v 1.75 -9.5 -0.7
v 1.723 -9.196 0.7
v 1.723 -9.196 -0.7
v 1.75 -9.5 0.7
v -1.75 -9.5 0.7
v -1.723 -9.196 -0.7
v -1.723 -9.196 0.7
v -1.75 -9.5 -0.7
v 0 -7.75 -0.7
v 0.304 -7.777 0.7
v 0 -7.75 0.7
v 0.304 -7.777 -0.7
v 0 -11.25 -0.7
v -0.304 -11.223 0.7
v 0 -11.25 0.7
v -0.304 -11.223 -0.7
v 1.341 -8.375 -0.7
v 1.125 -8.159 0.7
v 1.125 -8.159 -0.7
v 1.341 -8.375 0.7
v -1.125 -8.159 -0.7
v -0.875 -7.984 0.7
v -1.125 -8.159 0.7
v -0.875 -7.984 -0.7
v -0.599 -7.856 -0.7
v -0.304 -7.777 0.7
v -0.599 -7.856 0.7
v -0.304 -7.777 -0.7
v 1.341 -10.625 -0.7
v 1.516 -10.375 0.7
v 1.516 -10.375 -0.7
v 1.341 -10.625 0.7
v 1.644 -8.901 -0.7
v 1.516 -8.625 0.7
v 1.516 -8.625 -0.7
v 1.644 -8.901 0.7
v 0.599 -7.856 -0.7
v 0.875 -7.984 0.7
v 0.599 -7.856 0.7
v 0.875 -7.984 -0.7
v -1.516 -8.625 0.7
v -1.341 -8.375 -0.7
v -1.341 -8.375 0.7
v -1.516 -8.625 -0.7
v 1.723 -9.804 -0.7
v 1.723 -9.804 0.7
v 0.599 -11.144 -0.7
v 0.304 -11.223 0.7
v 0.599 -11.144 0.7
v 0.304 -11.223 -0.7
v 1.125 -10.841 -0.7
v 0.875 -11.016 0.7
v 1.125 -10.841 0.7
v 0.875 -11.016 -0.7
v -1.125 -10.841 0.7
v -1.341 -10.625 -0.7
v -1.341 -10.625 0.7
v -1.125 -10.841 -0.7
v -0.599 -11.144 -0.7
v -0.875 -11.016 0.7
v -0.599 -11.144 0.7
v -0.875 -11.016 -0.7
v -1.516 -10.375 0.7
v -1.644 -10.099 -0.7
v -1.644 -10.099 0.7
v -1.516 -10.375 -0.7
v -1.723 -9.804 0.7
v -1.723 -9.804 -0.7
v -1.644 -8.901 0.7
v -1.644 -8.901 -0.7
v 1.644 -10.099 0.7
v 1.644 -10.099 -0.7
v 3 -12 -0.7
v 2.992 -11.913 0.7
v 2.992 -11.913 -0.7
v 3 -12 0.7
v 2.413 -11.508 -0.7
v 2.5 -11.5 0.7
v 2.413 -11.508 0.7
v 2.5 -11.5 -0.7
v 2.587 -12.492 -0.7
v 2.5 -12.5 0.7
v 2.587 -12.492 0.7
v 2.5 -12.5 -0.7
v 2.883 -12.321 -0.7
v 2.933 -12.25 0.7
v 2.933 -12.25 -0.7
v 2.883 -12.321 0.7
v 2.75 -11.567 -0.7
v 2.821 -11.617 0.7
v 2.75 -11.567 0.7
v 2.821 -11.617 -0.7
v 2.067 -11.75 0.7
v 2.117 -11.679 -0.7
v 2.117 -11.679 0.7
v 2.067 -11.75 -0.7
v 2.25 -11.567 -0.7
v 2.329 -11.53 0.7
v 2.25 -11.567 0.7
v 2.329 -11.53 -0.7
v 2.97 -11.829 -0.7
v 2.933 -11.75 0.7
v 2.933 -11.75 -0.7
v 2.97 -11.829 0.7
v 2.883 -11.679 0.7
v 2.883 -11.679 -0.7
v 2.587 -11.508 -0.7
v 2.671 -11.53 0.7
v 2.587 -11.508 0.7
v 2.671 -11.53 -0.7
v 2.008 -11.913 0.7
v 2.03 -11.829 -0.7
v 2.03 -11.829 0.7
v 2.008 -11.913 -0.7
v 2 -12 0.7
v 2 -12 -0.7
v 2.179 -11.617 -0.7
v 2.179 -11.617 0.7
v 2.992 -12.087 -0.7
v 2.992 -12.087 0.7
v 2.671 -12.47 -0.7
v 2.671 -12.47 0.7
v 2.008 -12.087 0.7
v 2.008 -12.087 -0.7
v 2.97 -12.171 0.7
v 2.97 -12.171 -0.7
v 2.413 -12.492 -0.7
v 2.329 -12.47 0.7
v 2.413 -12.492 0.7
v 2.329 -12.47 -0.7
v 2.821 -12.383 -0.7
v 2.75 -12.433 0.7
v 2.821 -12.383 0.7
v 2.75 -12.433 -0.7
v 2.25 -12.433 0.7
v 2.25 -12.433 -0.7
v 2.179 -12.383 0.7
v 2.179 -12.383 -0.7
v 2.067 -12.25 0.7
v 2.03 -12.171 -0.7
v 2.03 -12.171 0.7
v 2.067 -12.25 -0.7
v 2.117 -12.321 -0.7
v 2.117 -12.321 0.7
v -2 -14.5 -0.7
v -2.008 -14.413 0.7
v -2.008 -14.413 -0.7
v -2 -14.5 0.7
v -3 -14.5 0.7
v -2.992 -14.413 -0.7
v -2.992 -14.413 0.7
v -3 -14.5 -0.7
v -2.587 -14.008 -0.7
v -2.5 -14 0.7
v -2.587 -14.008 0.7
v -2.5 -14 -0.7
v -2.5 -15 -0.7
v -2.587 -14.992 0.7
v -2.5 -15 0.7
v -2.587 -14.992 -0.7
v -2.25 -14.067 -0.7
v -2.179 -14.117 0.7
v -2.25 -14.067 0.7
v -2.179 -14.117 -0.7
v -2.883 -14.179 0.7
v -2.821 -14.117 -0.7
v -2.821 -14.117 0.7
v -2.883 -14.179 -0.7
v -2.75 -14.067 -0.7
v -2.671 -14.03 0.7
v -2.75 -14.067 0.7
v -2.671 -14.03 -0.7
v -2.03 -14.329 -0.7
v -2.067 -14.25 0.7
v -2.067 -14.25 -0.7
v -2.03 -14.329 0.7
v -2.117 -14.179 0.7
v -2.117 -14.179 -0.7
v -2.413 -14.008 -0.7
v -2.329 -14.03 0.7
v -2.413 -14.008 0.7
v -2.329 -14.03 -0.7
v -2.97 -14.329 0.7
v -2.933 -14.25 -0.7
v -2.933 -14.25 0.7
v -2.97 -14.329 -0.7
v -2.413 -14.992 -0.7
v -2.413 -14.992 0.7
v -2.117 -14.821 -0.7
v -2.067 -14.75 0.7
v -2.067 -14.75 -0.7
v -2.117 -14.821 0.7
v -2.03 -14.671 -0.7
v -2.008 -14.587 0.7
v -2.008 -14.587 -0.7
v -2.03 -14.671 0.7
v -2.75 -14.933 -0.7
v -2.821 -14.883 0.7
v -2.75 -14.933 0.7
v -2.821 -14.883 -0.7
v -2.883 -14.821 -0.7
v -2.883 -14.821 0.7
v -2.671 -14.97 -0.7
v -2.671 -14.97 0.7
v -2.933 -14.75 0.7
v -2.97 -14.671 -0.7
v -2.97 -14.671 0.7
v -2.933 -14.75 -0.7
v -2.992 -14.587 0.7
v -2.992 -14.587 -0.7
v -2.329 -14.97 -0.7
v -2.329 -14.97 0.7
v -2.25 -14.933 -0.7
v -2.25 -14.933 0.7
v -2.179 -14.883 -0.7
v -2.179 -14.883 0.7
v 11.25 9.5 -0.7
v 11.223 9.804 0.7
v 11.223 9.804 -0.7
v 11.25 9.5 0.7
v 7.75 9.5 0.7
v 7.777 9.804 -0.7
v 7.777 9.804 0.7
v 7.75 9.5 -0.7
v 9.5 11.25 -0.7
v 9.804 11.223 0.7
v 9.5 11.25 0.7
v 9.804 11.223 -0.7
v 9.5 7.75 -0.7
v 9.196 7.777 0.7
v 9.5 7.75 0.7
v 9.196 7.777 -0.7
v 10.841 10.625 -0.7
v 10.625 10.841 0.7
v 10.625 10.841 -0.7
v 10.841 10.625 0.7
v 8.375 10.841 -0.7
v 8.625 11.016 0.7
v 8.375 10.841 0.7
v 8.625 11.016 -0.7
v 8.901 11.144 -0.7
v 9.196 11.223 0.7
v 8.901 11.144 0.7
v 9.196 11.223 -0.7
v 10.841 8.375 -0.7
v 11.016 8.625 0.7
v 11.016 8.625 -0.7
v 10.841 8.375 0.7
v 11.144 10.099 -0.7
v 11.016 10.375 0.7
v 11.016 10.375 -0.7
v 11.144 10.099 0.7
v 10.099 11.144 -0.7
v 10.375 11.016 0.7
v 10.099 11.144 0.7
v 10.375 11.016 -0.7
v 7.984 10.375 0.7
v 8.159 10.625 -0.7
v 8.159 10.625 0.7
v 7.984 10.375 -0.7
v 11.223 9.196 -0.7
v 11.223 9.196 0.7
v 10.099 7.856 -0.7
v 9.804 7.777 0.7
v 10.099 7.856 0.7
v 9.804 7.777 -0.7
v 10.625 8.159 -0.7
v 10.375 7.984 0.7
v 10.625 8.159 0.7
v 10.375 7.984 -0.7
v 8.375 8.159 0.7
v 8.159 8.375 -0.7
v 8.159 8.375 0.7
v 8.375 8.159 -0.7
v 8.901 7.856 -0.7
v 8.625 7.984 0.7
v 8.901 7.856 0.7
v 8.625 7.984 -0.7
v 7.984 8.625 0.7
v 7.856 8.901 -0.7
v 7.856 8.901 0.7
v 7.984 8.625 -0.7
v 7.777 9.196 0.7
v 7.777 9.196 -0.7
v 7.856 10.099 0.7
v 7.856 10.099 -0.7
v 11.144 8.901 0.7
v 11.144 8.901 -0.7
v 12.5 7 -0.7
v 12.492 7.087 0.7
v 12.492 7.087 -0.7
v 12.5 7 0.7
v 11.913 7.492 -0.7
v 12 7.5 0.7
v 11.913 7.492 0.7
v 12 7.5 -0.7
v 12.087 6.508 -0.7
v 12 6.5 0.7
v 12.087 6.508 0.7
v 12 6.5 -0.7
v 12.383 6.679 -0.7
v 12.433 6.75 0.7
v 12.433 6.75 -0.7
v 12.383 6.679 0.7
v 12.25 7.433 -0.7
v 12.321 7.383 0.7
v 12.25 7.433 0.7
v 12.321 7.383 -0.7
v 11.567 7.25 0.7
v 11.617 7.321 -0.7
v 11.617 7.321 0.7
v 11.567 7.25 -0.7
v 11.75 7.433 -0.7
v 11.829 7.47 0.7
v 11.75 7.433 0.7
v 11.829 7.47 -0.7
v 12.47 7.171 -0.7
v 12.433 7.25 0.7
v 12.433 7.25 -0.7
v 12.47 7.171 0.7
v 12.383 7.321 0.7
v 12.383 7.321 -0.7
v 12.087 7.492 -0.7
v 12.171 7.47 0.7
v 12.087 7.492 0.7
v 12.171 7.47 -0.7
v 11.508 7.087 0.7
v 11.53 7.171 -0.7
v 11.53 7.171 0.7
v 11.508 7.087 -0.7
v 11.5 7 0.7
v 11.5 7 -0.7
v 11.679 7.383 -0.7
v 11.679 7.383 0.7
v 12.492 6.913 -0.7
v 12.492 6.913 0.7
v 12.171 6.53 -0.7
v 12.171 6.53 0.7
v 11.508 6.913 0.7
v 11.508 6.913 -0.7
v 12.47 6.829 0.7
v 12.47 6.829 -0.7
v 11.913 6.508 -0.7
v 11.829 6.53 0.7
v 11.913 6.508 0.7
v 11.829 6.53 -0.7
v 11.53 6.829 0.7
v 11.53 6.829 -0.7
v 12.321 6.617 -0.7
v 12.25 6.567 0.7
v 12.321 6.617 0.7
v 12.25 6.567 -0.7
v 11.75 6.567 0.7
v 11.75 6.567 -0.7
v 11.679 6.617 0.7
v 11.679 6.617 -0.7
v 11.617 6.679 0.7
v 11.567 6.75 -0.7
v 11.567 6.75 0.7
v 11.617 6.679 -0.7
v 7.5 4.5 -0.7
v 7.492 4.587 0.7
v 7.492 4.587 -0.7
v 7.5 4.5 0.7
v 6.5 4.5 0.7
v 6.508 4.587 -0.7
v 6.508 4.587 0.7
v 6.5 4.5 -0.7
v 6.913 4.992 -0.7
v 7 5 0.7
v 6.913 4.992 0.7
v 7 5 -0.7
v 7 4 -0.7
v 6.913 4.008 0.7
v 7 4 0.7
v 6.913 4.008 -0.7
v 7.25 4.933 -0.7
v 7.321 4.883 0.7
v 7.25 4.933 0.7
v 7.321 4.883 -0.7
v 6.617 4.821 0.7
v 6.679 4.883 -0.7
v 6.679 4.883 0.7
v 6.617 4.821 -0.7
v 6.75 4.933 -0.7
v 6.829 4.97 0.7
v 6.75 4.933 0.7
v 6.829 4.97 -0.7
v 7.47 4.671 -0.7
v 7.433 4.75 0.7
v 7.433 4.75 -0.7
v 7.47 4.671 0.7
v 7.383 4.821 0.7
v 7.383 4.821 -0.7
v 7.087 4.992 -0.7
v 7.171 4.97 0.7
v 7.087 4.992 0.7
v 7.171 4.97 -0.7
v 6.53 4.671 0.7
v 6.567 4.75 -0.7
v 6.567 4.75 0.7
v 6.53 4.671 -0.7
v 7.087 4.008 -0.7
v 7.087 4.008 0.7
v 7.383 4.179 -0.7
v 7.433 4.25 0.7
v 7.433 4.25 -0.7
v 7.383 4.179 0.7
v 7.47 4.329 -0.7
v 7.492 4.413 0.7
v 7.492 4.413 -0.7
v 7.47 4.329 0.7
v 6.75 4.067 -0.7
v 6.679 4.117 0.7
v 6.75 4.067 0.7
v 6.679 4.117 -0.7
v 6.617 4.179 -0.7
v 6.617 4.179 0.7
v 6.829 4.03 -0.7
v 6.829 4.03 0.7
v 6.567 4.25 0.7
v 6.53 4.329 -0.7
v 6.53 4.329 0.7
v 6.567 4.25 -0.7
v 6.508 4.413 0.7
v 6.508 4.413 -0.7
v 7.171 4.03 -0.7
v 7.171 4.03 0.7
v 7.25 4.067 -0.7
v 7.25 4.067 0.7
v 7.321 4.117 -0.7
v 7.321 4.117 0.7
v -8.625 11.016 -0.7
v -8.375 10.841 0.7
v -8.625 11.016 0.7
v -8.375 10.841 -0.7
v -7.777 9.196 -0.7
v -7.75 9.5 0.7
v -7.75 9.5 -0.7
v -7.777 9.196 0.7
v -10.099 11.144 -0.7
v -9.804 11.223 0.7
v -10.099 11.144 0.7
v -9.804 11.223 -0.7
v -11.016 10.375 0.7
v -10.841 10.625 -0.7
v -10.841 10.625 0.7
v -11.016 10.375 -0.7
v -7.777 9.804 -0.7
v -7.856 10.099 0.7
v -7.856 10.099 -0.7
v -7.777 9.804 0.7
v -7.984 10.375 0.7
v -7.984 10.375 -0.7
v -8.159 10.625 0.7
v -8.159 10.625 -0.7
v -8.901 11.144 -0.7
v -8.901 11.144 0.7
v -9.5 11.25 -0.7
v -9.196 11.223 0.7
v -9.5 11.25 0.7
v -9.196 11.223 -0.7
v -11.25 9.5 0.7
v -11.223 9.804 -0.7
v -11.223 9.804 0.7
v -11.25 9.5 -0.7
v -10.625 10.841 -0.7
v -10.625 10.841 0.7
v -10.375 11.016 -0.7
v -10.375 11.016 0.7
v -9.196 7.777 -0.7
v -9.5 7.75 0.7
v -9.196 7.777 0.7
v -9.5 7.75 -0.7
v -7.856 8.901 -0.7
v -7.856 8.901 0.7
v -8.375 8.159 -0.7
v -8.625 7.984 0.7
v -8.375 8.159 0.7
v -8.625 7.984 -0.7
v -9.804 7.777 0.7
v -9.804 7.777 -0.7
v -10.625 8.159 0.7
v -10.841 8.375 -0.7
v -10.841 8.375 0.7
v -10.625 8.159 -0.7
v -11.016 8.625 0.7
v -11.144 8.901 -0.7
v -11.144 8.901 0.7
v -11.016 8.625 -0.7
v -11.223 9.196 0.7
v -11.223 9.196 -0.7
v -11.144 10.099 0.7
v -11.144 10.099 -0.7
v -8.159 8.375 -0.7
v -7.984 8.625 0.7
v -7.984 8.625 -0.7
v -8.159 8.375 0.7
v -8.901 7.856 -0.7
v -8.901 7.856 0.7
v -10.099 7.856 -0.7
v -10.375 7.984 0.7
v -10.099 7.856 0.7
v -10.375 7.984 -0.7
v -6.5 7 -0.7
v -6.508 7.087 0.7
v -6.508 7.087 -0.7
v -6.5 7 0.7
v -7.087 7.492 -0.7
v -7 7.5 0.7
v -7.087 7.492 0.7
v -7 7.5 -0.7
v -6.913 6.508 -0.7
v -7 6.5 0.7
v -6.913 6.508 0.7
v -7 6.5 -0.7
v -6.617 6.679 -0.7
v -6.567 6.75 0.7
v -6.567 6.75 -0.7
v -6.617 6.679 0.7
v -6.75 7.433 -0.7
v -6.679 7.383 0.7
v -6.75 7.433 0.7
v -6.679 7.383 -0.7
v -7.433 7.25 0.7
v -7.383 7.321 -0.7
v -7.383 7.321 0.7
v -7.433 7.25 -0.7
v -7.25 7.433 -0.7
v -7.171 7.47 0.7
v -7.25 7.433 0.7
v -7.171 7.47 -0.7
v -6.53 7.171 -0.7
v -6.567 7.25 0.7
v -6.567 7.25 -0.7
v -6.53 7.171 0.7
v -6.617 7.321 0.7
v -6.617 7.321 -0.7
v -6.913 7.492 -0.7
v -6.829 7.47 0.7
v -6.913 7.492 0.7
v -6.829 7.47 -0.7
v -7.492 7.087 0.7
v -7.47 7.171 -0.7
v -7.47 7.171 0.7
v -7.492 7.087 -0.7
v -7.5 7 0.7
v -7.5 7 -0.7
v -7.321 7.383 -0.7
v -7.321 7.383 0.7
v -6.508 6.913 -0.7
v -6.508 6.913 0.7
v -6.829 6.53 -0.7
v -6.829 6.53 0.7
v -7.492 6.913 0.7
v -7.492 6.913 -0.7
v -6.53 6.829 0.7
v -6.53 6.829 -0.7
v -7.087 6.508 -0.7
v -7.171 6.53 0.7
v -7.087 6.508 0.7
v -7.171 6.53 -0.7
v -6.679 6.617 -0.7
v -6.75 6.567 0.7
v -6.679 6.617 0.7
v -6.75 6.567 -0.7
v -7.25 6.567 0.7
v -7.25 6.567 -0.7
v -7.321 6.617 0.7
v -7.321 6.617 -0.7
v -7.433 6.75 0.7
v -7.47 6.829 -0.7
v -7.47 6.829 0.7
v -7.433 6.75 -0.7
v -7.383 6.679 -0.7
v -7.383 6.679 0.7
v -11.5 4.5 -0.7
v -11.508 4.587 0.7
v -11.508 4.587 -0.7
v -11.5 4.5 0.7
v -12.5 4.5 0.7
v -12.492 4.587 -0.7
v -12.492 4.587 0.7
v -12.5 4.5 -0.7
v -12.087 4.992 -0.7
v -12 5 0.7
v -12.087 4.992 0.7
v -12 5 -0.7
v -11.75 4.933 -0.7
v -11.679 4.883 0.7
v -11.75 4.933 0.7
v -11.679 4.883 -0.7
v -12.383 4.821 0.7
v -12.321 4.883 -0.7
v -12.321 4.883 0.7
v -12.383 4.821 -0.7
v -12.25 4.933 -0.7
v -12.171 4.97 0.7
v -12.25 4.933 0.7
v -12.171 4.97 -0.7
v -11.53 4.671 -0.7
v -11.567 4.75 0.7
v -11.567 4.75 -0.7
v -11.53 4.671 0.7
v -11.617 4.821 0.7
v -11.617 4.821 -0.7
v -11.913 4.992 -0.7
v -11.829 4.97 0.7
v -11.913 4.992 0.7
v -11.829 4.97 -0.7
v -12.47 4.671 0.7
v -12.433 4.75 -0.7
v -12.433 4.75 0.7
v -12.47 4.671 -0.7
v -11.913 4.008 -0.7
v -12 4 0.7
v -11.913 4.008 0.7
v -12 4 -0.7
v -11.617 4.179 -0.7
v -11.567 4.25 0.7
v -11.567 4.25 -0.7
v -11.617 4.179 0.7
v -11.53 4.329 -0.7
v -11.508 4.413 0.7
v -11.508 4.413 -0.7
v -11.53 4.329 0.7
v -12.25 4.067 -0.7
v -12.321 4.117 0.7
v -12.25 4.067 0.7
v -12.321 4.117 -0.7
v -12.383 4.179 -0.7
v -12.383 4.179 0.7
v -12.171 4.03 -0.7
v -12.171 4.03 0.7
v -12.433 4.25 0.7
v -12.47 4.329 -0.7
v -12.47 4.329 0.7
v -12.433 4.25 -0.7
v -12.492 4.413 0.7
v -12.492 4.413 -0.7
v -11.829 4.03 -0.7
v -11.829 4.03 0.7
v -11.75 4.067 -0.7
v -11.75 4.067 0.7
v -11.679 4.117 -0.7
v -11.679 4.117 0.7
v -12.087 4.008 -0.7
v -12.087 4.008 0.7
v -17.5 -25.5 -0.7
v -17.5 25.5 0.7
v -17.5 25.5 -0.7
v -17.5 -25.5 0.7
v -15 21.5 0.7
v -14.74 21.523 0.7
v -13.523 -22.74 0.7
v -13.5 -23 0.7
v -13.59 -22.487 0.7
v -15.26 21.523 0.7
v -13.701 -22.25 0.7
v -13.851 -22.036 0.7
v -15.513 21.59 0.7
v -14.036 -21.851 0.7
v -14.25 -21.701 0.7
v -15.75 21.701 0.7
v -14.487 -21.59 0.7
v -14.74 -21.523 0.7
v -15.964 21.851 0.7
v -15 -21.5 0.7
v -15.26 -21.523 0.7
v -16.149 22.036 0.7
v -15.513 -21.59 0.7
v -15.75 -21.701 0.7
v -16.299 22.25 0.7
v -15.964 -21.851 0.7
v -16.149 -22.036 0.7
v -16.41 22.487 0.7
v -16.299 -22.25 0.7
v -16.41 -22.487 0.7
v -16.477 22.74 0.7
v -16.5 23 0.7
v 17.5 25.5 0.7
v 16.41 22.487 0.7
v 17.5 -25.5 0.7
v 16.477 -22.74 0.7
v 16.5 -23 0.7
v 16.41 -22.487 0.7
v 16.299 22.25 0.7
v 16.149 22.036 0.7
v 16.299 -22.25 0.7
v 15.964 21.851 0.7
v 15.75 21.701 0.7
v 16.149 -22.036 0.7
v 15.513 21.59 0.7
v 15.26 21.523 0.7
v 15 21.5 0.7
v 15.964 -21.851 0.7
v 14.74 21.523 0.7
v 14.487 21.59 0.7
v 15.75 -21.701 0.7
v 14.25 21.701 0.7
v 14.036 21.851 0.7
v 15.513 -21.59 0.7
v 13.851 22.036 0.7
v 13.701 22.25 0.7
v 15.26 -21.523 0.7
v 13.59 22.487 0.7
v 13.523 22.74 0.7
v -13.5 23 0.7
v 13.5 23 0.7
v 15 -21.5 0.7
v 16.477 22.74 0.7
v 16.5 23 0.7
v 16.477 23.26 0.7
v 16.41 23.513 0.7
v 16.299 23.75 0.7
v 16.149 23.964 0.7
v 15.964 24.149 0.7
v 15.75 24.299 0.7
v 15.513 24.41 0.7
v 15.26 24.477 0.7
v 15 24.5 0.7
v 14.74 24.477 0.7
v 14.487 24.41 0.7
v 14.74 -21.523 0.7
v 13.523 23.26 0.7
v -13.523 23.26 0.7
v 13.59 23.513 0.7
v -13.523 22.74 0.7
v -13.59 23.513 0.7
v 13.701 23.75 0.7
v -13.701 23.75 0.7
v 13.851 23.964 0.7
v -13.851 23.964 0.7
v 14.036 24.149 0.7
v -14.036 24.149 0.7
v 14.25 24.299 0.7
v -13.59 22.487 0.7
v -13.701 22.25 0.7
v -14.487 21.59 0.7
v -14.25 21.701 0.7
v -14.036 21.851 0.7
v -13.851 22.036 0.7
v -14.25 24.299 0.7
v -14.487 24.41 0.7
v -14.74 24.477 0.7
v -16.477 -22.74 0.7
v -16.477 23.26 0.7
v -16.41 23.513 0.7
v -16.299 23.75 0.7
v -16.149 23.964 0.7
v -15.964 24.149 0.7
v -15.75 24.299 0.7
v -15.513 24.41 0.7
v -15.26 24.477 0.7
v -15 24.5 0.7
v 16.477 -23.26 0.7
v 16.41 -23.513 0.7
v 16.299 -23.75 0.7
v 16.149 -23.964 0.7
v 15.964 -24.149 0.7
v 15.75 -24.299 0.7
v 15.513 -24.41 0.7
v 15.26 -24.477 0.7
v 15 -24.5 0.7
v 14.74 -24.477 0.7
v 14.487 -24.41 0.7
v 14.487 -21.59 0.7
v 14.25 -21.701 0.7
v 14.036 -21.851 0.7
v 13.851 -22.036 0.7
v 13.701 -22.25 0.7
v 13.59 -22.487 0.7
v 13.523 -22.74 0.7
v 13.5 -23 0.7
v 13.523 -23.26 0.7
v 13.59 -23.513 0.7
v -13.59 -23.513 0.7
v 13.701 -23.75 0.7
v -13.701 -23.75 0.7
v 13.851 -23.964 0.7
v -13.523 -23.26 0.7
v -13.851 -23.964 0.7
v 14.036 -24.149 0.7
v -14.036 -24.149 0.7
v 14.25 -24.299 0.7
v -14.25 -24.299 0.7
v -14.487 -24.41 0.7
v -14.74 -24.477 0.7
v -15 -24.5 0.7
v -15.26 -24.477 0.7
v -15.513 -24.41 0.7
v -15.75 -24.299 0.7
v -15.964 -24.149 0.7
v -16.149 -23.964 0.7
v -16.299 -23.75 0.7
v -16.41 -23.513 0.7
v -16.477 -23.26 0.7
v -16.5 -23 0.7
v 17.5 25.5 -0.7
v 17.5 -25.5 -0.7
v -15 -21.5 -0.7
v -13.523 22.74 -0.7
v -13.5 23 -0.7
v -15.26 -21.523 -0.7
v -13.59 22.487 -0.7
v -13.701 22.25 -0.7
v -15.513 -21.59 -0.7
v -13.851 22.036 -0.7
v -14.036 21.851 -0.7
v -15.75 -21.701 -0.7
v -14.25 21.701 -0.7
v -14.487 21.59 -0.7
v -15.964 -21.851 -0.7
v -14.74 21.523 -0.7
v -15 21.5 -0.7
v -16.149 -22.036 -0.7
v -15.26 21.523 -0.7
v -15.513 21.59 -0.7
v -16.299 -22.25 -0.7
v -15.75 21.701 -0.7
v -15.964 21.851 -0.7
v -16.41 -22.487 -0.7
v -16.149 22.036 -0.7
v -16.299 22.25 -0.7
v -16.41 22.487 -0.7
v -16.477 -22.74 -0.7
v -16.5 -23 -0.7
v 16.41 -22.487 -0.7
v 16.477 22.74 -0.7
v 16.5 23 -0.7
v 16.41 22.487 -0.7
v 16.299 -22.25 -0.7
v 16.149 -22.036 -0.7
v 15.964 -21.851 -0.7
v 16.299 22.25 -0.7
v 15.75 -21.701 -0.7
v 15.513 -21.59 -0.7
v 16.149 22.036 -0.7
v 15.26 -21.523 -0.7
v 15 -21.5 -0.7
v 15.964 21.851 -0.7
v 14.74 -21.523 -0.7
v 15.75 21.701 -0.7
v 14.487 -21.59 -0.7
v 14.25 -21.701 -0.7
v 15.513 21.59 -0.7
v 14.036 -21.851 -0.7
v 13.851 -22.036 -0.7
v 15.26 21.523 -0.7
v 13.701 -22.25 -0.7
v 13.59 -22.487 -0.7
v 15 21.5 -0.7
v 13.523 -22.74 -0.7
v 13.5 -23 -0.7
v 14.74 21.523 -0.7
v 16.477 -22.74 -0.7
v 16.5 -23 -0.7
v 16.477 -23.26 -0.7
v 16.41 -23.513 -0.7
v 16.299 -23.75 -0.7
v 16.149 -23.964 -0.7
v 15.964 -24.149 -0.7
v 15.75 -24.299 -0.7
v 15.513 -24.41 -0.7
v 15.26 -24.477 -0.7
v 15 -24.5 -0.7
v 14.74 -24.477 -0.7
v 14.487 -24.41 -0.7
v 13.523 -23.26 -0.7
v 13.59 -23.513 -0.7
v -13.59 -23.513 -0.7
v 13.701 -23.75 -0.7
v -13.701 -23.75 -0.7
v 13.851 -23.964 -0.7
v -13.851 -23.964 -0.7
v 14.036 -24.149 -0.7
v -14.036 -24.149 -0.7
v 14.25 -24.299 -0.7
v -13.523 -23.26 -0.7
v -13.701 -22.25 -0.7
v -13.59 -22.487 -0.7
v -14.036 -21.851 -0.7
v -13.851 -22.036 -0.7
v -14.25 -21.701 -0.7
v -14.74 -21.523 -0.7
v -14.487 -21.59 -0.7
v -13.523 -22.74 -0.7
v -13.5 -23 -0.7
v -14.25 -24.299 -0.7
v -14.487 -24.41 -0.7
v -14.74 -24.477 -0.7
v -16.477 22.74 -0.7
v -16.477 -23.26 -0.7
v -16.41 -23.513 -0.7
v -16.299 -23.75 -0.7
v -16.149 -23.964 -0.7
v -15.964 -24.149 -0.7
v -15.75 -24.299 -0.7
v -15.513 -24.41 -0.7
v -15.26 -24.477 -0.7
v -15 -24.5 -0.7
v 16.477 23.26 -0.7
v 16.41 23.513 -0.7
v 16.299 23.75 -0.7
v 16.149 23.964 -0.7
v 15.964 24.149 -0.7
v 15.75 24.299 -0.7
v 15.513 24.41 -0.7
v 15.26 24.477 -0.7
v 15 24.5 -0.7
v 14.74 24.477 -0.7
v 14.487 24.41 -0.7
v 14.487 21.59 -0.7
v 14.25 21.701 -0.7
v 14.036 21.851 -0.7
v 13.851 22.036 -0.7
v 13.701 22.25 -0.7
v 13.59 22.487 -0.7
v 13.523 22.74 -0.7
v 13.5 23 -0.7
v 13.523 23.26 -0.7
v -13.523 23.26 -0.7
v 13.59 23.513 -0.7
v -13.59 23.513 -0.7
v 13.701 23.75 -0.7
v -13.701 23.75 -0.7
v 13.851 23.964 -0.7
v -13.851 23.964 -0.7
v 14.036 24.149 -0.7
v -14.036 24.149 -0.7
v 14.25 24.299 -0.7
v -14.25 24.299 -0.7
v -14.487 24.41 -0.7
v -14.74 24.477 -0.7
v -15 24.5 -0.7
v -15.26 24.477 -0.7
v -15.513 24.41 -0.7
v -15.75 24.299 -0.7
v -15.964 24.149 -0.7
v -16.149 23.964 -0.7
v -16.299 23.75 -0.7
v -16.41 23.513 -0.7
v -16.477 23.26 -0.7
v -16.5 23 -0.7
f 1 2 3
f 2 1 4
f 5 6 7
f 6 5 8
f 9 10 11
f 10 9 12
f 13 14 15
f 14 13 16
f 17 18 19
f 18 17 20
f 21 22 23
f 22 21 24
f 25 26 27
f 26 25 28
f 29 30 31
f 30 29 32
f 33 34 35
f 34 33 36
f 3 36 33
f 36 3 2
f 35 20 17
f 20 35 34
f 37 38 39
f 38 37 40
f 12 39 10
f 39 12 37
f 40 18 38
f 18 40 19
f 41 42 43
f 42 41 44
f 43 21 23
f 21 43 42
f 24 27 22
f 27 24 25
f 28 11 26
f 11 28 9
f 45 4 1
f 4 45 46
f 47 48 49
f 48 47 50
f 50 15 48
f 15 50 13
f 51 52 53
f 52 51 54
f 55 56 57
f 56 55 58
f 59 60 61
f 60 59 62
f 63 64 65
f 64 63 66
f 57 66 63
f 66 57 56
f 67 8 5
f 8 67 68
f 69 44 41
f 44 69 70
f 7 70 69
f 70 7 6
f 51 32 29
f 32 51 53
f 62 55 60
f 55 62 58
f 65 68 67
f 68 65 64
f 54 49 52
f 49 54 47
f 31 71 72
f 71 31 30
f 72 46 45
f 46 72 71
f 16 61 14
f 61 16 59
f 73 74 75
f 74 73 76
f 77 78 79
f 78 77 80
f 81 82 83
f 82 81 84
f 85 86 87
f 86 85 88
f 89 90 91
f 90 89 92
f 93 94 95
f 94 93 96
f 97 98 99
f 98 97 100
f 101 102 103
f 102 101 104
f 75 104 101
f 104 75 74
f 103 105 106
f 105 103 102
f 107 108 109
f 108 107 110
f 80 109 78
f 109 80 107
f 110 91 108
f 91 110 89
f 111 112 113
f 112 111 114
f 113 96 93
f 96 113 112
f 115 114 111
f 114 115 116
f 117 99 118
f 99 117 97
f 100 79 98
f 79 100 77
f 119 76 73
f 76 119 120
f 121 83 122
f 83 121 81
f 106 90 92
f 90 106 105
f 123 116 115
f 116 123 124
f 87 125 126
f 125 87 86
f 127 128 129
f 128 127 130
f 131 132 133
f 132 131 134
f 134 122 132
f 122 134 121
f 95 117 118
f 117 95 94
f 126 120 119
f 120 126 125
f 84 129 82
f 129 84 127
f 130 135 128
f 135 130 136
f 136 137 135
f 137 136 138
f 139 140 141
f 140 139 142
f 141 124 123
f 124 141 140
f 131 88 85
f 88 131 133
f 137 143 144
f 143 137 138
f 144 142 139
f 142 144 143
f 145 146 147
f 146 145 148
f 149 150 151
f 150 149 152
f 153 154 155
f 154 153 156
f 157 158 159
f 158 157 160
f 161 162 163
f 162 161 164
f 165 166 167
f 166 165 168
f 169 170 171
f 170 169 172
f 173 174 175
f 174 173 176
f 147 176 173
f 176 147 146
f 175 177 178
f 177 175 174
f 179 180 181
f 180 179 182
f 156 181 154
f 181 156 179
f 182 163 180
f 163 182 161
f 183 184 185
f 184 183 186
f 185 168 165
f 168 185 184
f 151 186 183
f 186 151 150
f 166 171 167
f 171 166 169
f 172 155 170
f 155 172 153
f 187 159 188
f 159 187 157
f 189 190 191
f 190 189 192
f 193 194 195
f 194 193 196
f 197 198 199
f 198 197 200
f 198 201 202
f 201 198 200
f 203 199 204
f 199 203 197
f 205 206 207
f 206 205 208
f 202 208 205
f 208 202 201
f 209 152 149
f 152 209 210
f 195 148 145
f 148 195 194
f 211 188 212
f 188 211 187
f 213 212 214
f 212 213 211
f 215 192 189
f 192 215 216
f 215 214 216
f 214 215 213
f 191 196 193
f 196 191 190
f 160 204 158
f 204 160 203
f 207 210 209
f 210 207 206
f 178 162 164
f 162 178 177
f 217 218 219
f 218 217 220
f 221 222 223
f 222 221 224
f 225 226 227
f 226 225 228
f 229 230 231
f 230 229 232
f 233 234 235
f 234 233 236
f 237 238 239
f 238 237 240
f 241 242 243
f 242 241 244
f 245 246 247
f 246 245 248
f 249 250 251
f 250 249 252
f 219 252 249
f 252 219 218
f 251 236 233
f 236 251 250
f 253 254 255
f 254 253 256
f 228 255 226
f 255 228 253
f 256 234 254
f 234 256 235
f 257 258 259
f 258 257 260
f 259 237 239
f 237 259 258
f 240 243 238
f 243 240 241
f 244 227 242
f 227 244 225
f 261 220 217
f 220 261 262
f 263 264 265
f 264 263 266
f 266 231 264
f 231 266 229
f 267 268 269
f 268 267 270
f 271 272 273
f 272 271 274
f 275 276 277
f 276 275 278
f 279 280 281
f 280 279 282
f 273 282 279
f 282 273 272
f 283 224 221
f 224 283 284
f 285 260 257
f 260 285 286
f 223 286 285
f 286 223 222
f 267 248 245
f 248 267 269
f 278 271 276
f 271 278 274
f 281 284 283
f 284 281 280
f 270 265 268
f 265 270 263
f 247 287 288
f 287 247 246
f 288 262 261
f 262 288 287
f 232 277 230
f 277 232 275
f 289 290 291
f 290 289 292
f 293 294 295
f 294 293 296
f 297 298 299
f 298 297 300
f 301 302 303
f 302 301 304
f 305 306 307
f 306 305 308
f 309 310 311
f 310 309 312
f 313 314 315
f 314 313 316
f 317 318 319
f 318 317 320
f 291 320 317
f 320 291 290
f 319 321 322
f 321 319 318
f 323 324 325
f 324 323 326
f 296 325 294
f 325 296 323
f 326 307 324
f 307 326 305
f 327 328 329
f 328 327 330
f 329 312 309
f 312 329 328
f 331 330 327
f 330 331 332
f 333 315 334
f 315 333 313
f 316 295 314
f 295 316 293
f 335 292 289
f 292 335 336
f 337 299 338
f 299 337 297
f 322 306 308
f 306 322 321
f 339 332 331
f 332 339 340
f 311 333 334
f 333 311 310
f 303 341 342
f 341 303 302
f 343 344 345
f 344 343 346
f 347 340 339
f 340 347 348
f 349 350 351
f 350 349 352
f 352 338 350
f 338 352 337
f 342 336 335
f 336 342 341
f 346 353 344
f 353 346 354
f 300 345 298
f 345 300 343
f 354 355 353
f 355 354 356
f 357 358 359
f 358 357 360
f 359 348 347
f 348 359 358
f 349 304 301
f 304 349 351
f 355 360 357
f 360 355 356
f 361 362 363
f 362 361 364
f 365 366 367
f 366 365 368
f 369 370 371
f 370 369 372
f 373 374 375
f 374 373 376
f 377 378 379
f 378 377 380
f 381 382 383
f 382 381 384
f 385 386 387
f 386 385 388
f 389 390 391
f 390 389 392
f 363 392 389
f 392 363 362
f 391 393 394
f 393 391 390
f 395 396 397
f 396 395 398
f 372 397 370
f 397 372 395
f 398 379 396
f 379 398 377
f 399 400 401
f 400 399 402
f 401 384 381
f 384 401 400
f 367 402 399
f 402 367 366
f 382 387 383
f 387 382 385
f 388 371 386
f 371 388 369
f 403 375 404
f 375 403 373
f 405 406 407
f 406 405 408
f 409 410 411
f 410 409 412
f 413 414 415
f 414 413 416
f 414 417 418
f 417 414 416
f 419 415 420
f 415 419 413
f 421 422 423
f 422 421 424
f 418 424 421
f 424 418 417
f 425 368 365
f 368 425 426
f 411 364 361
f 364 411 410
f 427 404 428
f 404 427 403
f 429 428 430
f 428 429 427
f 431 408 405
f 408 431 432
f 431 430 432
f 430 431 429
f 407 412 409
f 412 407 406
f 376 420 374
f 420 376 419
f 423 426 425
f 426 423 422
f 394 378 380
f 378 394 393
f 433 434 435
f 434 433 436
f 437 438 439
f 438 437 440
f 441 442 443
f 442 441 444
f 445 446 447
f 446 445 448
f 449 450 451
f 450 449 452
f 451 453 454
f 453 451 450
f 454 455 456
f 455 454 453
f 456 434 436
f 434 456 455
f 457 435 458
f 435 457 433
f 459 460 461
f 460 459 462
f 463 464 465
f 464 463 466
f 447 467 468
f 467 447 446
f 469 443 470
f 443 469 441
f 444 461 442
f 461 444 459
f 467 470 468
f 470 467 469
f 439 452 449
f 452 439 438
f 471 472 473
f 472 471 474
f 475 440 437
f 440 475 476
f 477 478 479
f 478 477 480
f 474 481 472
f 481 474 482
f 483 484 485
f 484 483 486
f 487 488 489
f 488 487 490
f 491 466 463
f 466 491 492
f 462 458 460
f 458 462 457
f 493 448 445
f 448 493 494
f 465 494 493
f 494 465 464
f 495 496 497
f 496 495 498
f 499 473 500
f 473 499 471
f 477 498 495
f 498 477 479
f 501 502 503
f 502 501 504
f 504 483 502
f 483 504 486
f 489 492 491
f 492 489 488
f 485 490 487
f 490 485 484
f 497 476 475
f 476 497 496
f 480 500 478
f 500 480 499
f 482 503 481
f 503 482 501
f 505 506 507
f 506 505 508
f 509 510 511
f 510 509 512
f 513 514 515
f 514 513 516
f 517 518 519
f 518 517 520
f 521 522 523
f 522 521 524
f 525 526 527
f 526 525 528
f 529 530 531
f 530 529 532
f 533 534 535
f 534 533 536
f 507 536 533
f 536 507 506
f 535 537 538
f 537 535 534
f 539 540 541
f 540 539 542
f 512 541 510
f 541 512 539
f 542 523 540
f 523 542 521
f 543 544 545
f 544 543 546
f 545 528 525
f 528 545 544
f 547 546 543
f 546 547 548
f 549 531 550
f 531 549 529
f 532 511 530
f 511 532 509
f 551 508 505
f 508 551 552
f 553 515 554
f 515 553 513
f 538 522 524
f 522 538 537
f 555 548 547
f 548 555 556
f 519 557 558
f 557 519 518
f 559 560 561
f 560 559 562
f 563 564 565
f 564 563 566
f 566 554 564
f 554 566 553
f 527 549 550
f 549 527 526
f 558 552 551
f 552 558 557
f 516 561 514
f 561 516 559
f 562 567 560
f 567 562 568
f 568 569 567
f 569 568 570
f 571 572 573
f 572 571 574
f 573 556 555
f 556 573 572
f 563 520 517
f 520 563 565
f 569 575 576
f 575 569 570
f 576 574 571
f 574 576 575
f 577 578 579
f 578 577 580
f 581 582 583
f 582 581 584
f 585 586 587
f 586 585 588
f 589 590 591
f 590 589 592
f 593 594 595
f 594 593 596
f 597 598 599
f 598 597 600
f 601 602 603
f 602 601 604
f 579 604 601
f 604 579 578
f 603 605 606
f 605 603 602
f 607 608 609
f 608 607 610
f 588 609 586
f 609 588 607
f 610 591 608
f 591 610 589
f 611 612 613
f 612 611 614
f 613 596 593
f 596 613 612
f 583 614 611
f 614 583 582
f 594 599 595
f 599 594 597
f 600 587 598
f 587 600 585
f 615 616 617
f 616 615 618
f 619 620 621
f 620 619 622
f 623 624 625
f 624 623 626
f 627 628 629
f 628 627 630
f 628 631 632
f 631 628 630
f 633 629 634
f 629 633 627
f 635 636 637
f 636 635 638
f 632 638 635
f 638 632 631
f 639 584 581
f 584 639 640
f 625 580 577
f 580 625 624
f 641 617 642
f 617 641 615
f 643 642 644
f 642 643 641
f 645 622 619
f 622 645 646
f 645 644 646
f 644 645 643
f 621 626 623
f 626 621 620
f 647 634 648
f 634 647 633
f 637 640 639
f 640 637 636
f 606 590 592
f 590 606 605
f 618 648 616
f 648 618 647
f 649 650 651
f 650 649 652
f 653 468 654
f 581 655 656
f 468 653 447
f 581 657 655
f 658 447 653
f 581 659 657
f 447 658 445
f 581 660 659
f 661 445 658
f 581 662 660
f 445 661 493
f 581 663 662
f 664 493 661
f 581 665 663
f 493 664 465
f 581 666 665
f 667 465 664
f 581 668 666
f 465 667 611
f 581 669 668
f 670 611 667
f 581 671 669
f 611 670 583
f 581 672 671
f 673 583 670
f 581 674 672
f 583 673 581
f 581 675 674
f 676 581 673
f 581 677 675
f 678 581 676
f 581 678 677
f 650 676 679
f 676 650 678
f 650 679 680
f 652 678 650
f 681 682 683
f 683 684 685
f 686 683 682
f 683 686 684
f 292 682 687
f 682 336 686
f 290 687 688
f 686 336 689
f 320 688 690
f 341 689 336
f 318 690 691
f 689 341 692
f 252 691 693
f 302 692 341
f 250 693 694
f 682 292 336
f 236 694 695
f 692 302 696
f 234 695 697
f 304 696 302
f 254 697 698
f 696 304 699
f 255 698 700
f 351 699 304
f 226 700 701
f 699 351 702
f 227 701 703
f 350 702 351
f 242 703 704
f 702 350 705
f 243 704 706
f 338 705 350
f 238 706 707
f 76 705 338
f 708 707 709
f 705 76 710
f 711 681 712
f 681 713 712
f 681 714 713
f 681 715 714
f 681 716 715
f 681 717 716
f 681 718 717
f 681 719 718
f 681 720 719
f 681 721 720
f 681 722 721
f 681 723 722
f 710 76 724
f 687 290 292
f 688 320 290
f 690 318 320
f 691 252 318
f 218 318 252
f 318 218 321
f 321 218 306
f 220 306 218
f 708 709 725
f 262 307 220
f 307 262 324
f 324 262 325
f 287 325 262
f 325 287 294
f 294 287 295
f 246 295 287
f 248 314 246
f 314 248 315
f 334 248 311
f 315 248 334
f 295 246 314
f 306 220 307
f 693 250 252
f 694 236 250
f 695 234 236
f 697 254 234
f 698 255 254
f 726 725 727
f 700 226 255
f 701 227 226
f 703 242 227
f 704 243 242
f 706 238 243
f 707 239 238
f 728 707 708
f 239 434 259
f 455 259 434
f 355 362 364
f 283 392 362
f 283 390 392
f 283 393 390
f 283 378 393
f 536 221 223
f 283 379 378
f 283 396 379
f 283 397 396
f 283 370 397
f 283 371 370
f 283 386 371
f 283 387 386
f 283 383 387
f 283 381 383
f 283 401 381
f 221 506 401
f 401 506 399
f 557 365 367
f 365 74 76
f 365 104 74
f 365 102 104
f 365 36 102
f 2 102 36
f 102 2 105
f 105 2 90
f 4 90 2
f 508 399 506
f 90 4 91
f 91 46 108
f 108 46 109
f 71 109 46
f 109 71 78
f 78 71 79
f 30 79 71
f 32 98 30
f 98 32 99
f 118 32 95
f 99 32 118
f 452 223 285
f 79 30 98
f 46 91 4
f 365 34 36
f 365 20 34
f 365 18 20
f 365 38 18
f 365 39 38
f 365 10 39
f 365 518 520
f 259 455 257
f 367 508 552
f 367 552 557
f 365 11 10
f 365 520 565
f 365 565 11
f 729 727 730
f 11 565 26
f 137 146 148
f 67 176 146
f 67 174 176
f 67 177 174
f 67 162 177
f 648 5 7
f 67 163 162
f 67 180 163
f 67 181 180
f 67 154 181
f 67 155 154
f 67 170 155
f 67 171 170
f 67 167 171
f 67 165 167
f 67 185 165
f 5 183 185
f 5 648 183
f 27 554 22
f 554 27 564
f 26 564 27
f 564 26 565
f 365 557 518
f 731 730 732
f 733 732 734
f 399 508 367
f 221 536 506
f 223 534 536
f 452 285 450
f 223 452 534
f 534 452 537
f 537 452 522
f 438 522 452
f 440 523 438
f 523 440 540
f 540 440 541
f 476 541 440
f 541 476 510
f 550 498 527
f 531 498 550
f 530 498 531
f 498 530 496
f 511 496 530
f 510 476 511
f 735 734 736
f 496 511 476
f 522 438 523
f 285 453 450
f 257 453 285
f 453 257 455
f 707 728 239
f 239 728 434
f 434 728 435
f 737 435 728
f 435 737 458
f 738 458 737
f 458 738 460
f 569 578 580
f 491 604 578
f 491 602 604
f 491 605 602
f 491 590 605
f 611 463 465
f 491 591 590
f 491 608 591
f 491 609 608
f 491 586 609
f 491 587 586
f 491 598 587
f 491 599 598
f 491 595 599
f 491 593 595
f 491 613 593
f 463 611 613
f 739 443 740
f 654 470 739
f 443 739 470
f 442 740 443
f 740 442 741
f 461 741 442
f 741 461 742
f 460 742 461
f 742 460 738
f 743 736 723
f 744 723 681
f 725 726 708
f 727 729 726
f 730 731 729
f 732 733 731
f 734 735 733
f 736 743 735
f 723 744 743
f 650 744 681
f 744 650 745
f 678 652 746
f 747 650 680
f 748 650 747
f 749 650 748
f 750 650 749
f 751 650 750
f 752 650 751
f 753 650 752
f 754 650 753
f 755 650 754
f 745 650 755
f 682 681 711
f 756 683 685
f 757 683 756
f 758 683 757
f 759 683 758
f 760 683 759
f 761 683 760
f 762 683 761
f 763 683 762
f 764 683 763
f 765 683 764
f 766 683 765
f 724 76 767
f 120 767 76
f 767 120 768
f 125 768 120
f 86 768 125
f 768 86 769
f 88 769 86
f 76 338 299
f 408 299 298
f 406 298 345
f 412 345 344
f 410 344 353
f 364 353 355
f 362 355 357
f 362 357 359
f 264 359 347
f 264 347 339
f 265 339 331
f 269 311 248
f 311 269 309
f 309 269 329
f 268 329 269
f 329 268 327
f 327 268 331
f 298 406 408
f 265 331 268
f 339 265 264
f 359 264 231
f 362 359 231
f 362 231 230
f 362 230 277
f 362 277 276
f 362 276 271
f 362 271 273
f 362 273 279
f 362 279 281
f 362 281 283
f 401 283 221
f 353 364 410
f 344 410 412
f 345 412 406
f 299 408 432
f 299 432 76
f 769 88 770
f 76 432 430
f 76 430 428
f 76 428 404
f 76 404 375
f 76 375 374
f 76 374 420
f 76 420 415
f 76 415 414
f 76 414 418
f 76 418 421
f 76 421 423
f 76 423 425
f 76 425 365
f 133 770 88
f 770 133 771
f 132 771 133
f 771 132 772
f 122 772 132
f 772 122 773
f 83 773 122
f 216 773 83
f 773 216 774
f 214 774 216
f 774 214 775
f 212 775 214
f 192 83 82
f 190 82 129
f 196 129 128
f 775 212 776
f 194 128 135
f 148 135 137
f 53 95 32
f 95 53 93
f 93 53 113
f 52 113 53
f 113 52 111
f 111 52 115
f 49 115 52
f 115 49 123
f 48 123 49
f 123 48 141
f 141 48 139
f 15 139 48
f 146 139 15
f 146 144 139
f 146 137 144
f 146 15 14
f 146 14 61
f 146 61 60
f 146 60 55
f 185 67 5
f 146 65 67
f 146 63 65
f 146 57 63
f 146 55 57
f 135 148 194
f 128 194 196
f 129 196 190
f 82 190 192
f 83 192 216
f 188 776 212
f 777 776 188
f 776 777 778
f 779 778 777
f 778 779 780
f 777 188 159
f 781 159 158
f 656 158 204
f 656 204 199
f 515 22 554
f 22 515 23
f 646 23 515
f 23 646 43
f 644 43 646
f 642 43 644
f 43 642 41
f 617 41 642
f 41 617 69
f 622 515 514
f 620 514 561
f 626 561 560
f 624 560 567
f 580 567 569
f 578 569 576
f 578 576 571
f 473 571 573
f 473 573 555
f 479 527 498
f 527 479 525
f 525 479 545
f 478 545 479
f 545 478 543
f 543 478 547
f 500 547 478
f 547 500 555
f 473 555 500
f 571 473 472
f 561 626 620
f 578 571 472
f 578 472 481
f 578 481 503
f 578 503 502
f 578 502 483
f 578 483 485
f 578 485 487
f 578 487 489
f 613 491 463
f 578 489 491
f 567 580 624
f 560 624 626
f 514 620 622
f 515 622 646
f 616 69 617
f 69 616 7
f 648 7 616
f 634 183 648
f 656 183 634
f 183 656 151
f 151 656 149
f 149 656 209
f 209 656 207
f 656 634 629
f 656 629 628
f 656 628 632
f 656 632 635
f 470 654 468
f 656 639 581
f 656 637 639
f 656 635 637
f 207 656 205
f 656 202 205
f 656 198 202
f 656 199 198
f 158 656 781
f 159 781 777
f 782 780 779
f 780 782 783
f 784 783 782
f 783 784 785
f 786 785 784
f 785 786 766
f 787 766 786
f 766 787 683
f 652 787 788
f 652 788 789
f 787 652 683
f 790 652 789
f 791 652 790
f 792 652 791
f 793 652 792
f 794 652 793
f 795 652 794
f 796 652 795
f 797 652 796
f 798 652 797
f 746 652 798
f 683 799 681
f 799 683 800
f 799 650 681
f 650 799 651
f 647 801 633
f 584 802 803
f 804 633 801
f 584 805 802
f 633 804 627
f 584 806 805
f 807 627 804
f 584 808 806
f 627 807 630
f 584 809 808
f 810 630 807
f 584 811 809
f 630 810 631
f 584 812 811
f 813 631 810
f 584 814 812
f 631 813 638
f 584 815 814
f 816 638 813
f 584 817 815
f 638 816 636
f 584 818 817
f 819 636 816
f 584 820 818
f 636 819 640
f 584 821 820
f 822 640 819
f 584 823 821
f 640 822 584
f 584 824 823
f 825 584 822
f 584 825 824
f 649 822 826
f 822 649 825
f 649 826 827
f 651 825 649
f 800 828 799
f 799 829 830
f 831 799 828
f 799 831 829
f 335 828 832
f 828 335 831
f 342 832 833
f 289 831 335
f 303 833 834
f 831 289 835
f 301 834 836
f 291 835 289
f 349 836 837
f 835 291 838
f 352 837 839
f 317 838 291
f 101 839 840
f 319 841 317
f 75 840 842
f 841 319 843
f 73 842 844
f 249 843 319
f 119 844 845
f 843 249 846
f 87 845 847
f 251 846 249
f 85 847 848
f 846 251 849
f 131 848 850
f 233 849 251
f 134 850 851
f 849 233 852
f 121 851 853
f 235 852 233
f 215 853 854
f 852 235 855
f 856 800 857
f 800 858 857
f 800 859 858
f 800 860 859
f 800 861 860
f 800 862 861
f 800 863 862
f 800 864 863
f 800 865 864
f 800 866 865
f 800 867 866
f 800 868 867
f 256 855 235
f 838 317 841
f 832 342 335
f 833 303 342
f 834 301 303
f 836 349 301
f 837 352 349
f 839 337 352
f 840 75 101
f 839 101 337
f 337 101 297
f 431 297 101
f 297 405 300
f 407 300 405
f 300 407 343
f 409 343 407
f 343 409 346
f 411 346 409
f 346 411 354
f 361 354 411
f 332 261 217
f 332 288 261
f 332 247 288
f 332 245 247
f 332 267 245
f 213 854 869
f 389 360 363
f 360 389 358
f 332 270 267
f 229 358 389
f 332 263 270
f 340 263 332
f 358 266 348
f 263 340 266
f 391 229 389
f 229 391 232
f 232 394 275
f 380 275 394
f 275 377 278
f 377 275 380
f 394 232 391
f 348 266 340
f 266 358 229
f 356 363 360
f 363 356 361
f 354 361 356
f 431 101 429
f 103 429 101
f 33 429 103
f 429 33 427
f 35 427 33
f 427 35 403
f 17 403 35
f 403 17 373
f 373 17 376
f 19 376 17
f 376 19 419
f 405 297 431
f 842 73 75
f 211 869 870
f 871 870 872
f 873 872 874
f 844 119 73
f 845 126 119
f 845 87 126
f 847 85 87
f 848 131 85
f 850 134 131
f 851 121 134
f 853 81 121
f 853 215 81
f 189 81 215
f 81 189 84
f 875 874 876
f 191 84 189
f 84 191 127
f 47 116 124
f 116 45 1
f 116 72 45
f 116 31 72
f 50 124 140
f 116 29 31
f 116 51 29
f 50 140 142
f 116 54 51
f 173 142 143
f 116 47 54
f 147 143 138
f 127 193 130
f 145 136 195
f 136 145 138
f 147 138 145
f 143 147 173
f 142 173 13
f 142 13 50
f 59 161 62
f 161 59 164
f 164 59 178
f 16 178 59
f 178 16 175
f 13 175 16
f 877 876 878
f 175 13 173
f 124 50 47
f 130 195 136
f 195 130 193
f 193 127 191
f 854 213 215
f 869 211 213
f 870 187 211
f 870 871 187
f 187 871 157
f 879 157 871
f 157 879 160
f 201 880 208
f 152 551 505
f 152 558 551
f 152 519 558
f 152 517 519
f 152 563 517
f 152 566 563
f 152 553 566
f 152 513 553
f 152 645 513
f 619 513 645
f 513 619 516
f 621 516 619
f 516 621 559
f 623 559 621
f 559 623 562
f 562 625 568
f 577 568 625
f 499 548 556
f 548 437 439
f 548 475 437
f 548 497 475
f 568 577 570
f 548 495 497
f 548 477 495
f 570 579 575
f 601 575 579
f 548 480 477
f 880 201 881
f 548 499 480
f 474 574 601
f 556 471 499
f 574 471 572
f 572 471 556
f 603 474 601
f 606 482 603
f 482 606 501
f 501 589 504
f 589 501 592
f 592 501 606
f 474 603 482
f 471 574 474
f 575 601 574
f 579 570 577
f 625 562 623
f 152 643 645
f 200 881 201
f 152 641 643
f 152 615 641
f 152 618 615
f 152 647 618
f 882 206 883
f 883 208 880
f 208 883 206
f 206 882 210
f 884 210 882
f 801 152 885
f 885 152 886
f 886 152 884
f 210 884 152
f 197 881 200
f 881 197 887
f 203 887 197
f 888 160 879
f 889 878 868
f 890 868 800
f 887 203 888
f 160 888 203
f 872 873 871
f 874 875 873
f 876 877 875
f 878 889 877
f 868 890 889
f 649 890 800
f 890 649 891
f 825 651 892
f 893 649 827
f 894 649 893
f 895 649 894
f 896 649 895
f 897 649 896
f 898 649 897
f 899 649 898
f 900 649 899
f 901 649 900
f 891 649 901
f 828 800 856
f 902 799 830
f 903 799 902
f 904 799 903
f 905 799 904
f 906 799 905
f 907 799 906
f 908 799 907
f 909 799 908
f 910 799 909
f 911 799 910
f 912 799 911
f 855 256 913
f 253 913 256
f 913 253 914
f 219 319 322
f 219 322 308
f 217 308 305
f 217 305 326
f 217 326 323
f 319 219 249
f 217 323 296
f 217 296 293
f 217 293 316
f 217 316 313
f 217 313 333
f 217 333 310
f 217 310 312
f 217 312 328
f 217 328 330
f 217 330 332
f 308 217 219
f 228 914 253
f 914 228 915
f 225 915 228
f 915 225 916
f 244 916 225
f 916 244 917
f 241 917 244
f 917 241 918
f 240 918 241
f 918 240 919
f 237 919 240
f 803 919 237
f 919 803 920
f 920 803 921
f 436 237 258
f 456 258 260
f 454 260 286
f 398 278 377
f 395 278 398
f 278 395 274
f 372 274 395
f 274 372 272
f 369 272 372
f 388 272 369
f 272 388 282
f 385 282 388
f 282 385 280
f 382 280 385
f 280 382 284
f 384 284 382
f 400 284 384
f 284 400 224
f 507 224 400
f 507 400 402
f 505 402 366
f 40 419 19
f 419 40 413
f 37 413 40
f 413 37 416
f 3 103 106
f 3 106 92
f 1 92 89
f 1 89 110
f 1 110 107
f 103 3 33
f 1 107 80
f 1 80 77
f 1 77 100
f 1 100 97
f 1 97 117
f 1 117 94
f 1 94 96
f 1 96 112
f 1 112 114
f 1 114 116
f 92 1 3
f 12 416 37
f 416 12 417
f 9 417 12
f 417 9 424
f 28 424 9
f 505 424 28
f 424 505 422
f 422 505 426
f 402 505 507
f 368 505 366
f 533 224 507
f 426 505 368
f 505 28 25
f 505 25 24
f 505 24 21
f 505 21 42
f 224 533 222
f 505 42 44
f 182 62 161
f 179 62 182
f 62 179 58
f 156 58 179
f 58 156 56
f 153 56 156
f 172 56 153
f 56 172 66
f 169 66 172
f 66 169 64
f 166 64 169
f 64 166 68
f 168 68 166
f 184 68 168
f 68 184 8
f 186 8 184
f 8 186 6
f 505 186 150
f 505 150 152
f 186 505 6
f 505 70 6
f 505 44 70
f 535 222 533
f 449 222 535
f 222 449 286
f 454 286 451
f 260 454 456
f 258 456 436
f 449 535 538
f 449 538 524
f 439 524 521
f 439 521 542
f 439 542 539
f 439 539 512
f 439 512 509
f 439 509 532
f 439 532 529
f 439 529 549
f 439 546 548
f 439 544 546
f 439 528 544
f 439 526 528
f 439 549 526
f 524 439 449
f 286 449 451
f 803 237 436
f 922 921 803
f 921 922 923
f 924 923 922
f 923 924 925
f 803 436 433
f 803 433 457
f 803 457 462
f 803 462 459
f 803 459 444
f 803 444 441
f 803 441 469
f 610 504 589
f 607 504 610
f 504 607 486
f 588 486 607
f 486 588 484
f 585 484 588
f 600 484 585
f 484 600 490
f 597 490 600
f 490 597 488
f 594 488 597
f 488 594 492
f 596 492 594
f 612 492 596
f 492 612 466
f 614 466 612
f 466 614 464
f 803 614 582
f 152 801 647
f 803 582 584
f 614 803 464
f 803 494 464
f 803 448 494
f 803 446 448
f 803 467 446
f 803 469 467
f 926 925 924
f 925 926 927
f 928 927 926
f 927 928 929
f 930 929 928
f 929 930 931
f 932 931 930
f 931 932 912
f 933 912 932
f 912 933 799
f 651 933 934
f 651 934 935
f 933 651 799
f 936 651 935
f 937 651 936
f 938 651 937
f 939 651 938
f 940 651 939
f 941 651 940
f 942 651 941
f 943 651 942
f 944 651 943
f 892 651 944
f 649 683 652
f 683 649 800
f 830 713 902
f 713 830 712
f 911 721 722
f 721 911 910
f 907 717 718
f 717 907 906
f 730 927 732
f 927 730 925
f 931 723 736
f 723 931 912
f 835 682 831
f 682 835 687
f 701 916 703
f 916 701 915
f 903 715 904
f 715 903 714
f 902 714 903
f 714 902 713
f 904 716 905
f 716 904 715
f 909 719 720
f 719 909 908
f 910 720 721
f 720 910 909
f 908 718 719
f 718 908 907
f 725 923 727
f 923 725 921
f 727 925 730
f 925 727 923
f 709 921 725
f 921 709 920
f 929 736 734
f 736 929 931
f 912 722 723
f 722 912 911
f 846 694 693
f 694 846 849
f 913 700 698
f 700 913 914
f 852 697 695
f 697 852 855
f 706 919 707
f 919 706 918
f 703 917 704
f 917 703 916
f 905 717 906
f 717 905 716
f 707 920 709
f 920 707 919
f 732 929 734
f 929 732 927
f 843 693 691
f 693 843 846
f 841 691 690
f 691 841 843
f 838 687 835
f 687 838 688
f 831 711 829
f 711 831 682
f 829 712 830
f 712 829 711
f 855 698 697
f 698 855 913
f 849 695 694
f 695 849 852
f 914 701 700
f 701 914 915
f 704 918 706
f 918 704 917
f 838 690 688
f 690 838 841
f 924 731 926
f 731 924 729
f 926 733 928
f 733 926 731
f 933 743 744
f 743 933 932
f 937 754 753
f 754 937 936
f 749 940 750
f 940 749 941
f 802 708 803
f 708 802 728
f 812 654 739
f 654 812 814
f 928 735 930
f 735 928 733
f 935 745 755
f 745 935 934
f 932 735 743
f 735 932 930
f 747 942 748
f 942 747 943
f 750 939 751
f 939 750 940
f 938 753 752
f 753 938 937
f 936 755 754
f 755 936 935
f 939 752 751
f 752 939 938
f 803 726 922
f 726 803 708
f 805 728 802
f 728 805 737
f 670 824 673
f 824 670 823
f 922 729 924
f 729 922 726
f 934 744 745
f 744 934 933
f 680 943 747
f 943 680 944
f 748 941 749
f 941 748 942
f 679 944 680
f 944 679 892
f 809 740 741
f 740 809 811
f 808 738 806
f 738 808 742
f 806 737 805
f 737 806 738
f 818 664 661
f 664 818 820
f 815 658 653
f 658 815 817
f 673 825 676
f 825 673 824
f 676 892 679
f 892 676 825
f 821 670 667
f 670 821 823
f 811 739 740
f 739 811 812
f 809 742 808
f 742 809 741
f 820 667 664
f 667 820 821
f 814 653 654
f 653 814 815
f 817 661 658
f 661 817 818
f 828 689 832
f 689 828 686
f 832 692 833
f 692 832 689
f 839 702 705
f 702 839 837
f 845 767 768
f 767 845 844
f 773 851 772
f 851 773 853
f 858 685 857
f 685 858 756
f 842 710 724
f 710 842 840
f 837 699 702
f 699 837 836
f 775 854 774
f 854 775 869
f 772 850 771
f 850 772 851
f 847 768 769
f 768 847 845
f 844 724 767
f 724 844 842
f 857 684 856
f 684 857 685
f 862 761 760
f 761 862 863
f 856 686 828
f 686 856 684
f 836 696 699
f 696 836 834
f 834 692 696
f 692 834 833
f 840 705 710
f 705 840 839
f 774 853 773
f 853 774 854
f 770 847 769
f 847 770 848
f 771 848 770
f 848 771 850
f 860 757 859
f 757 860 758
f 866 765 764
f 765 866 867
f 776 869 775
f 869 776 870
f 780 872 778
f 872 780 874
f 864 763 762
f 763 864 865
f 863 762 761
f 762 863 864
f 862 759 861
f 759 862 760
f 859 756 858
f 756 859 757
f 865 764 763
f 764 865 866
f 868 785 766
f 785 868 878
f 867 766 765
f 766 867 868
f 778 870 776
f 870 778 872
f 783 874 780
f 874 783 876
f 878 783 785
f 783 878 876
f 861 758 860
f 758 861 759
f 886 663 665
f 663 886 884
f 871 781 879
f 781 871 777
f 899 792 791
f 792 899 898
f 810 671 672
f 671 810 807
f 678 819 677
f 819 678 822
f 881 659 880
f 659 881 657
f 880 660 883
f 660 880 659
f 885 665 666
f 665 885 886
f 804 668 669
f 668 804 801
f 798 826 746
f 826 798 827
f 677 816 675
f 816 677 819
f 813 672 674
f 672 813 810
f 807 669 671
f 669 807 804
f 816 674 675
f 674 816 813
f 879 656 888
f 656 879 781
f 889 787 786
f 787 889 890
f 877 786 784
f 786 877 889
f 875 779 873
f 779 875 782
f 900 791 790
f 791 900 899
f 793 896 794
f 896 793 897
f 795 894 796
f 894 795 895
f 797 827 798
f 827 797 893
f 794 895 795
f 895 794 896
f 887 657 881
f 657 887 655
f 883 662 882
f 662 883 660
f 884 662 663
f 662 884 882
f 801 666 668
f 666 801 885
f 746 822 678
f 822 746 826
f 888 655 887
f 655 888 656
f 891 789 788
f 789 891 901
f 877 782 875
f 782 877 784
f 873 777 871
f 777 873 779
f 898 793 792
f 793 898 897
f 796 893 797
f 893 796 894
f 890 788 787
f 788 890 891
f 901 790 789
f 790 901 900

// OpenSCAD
resol = 36;

difference () {

    cube ([35,51,1.4], center=true);
    
    //go btn
    translate([0,-9.5,0])
    {
    translate ([0,0,0]) cylinder(h=10, r=3.5/2, center = true, $fn = resol);
    translate ([2.5,-2.5,0]) cylinder(h=10, r=1/2, center = true, $fn = resol);
    translate ([-2.5,-5,0]) cylinder(h=10, r=1/2, center = true, $fn = resol);
    }

    //cue btn
    translate([9.5,9.5,0])
    {
    translate ([0,0,0]) cylinder(h=10, r=3.5/2, center = true, $fn = resol);
    translate ([2.5,-2.5,0]) cylinder(h=10, r=1/2, center = true, $fn = resol);
    translate ([-2.5,-5,0]) cylinder(h=10, r=1/2, center = true, $fn = resol);
    }

    //bk btn
    translate([-9.5,9.5,0])
    {
    translate ([0,0,0]) cylinder(h=10, r=3.5/2, center = true, $fn = resol);
    translate ([2.5,-2.5,0]) cylinder(h=10, r=1/2, center = true, $fn = resol);
    translate ([-2.5,-5,0]) cylinder(h=10, r=1/2, center = true, $fn = resol);
    }

    
    translate ([15,23,0]) cylinder(h=10, r=3/2, center = true, $fn = resol);
    translate ([-15,23,0]) cylinder(h=10, r=3/2, center = true, $fn = resol);
    translate ([15,-23,0]) cylinder(h=10, r=3/2, center = true, $fn = resol);
    translate ([-15,-23,0]) cylinder(h=10, r=3/2, center = true, $fn = resol);

}
